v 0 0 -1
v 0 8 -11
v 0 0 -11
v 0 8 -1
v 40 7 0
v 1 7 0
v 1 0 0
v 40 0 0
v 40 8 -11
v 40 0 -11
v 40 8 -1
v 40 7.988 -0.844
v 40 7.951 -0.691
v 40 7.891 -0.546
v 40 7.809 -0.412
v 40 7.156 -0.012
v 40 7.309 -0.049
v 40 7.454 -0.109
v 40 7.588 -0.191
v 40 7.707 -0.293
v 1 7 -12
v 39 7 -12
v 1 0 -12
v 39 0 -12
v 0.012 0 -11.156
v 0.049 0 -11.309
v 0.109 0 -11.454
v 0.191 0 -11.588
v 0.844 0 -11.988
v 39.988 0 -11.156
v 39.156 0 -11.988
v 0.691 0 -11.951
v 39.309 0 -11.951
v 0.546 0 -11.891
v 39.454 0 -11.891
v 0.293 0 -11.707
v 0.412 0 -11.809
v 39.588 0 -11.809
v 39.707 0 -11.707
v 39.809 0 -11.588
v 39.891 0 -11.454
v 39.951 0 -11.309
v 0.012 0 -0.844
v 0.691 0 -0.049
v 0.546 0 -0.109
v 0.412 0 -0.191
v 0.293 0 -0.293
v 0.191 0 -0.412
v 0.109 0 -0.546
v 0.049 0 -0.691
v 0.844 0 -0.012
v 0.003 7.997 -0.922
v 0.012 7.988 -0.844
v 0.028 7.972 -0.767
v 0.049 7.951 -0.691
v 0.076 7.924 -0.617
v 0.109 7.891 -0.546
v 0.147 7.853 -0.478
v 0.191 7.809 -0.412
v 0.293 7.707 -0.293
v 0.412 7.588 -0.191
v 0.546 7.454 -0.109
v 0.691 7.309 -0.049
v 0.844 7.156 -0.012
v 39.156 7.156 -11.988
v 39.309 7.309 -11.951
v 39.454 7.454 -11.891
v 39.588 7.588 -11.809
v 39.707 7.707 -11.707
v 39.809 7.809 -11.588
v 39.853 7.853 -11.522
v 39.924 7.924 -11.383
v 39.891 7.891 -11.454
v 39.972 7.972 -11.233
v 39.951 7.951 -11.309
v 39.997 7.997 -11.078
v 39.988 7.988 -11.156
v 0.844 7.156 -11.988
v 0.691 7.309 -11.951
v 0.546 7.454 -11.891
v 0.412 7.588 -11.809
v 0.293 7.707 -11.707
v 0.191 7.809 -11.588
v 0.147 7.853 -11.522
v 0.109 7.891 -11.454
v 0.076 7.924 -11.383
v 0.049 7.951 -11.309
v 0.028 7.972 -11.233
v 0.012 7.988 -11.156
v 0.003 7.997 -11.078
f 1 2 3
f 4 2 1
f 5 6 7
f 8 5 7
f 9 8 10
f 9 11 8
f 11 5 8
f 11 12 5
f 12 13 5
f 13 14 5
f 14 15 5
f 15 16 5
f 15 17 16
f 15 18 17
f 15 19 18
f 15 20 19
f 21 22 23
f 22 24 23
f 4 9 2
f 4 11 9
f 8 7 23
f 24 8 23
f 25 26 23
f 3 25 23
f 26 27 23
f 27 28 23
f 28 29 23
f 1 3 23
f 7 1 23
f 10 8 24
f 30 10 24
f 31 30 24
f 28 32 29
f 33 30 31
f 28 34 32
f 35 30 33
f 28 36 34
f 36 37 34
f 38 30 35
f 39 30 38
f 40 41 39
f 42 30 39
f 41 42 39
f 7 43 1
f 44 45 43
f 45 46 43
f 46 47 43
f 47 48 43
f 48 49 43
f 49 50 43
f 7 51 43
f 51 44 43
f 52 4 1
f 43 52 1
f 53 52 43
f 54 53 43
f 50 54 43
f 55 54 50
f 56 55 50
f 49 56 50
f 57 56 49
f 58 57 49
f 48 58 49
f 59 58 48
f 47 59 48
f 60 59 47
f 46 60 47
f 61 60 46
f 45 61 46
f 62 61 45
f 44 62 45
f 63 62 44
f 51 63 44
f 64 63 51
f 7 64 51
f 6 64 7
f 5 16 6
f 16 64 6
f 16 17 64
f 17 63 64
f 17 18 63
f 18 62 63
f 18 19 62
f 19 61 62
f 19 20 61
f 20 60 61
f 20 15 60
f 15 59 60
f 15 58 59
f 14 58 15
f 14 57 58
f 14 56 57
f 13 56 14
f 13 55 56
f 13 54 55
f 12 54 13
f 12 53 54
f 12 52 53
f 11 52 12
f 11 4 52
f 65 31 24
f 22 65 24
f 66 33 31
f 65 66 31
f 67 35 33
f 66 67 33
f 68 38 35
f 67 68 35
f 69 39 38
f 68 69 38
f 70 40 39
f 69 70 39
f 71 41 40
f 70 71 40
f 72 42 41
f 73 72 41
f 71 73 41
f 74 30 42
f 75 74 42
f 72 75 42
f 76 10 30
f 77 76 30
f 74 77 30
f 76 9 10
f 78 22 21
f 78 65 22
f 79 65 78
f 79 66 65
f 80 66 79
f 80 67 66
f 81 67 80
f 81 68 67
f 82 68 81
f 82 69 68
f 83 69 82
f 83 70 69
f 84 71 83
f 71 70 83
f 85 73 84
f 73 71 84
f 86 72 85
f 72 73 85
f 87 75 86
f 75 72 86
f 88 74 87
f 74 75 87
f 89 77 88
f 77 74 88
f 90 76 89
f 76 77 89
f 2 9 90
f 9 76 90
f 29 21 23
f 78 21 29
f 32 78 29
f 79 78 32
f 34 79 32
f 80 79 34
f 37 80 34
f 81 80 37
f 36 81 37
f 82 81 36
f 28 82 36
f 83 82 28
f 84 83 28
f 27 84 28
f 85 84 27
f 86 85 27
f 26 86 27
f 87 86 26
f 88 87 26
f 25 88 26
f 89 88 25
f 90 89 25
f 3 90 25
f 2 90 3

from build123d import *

# Parameters (mm, degrees)
SKETCH2_W           = 40
SKETCH2_H           = 12
BOSS_EXTRUDE2_DEPTH = 8
FILLET1_R           = 1


with BuildPart() as part:
    # Sketch2 → Boss-Extrude2 (new body)
    with BuildSketch(Plane(origin=(0, 0, 0), x_dir=(1, 0, 0), z_dir=(0, 1, 0))):
        with Locations((20, 6)):
            Rectangle(SKETCH2_W, SKETCH2_H)
    extrude(amount=BOSS_EXTRUDE2_DEPTH)

    # Fillet1
    fillet1_edges = [part.edges().sort_by_distance(p)[0] for p in [
        (20, 8, -12),
        (0, 4, -12),
        (40, 4, -12),
        (0, 4, 0),
        (20, 8, 0),
    ]]
    fillet(fillet1_edges, radius=FILLET1_R)


solid = part.part
